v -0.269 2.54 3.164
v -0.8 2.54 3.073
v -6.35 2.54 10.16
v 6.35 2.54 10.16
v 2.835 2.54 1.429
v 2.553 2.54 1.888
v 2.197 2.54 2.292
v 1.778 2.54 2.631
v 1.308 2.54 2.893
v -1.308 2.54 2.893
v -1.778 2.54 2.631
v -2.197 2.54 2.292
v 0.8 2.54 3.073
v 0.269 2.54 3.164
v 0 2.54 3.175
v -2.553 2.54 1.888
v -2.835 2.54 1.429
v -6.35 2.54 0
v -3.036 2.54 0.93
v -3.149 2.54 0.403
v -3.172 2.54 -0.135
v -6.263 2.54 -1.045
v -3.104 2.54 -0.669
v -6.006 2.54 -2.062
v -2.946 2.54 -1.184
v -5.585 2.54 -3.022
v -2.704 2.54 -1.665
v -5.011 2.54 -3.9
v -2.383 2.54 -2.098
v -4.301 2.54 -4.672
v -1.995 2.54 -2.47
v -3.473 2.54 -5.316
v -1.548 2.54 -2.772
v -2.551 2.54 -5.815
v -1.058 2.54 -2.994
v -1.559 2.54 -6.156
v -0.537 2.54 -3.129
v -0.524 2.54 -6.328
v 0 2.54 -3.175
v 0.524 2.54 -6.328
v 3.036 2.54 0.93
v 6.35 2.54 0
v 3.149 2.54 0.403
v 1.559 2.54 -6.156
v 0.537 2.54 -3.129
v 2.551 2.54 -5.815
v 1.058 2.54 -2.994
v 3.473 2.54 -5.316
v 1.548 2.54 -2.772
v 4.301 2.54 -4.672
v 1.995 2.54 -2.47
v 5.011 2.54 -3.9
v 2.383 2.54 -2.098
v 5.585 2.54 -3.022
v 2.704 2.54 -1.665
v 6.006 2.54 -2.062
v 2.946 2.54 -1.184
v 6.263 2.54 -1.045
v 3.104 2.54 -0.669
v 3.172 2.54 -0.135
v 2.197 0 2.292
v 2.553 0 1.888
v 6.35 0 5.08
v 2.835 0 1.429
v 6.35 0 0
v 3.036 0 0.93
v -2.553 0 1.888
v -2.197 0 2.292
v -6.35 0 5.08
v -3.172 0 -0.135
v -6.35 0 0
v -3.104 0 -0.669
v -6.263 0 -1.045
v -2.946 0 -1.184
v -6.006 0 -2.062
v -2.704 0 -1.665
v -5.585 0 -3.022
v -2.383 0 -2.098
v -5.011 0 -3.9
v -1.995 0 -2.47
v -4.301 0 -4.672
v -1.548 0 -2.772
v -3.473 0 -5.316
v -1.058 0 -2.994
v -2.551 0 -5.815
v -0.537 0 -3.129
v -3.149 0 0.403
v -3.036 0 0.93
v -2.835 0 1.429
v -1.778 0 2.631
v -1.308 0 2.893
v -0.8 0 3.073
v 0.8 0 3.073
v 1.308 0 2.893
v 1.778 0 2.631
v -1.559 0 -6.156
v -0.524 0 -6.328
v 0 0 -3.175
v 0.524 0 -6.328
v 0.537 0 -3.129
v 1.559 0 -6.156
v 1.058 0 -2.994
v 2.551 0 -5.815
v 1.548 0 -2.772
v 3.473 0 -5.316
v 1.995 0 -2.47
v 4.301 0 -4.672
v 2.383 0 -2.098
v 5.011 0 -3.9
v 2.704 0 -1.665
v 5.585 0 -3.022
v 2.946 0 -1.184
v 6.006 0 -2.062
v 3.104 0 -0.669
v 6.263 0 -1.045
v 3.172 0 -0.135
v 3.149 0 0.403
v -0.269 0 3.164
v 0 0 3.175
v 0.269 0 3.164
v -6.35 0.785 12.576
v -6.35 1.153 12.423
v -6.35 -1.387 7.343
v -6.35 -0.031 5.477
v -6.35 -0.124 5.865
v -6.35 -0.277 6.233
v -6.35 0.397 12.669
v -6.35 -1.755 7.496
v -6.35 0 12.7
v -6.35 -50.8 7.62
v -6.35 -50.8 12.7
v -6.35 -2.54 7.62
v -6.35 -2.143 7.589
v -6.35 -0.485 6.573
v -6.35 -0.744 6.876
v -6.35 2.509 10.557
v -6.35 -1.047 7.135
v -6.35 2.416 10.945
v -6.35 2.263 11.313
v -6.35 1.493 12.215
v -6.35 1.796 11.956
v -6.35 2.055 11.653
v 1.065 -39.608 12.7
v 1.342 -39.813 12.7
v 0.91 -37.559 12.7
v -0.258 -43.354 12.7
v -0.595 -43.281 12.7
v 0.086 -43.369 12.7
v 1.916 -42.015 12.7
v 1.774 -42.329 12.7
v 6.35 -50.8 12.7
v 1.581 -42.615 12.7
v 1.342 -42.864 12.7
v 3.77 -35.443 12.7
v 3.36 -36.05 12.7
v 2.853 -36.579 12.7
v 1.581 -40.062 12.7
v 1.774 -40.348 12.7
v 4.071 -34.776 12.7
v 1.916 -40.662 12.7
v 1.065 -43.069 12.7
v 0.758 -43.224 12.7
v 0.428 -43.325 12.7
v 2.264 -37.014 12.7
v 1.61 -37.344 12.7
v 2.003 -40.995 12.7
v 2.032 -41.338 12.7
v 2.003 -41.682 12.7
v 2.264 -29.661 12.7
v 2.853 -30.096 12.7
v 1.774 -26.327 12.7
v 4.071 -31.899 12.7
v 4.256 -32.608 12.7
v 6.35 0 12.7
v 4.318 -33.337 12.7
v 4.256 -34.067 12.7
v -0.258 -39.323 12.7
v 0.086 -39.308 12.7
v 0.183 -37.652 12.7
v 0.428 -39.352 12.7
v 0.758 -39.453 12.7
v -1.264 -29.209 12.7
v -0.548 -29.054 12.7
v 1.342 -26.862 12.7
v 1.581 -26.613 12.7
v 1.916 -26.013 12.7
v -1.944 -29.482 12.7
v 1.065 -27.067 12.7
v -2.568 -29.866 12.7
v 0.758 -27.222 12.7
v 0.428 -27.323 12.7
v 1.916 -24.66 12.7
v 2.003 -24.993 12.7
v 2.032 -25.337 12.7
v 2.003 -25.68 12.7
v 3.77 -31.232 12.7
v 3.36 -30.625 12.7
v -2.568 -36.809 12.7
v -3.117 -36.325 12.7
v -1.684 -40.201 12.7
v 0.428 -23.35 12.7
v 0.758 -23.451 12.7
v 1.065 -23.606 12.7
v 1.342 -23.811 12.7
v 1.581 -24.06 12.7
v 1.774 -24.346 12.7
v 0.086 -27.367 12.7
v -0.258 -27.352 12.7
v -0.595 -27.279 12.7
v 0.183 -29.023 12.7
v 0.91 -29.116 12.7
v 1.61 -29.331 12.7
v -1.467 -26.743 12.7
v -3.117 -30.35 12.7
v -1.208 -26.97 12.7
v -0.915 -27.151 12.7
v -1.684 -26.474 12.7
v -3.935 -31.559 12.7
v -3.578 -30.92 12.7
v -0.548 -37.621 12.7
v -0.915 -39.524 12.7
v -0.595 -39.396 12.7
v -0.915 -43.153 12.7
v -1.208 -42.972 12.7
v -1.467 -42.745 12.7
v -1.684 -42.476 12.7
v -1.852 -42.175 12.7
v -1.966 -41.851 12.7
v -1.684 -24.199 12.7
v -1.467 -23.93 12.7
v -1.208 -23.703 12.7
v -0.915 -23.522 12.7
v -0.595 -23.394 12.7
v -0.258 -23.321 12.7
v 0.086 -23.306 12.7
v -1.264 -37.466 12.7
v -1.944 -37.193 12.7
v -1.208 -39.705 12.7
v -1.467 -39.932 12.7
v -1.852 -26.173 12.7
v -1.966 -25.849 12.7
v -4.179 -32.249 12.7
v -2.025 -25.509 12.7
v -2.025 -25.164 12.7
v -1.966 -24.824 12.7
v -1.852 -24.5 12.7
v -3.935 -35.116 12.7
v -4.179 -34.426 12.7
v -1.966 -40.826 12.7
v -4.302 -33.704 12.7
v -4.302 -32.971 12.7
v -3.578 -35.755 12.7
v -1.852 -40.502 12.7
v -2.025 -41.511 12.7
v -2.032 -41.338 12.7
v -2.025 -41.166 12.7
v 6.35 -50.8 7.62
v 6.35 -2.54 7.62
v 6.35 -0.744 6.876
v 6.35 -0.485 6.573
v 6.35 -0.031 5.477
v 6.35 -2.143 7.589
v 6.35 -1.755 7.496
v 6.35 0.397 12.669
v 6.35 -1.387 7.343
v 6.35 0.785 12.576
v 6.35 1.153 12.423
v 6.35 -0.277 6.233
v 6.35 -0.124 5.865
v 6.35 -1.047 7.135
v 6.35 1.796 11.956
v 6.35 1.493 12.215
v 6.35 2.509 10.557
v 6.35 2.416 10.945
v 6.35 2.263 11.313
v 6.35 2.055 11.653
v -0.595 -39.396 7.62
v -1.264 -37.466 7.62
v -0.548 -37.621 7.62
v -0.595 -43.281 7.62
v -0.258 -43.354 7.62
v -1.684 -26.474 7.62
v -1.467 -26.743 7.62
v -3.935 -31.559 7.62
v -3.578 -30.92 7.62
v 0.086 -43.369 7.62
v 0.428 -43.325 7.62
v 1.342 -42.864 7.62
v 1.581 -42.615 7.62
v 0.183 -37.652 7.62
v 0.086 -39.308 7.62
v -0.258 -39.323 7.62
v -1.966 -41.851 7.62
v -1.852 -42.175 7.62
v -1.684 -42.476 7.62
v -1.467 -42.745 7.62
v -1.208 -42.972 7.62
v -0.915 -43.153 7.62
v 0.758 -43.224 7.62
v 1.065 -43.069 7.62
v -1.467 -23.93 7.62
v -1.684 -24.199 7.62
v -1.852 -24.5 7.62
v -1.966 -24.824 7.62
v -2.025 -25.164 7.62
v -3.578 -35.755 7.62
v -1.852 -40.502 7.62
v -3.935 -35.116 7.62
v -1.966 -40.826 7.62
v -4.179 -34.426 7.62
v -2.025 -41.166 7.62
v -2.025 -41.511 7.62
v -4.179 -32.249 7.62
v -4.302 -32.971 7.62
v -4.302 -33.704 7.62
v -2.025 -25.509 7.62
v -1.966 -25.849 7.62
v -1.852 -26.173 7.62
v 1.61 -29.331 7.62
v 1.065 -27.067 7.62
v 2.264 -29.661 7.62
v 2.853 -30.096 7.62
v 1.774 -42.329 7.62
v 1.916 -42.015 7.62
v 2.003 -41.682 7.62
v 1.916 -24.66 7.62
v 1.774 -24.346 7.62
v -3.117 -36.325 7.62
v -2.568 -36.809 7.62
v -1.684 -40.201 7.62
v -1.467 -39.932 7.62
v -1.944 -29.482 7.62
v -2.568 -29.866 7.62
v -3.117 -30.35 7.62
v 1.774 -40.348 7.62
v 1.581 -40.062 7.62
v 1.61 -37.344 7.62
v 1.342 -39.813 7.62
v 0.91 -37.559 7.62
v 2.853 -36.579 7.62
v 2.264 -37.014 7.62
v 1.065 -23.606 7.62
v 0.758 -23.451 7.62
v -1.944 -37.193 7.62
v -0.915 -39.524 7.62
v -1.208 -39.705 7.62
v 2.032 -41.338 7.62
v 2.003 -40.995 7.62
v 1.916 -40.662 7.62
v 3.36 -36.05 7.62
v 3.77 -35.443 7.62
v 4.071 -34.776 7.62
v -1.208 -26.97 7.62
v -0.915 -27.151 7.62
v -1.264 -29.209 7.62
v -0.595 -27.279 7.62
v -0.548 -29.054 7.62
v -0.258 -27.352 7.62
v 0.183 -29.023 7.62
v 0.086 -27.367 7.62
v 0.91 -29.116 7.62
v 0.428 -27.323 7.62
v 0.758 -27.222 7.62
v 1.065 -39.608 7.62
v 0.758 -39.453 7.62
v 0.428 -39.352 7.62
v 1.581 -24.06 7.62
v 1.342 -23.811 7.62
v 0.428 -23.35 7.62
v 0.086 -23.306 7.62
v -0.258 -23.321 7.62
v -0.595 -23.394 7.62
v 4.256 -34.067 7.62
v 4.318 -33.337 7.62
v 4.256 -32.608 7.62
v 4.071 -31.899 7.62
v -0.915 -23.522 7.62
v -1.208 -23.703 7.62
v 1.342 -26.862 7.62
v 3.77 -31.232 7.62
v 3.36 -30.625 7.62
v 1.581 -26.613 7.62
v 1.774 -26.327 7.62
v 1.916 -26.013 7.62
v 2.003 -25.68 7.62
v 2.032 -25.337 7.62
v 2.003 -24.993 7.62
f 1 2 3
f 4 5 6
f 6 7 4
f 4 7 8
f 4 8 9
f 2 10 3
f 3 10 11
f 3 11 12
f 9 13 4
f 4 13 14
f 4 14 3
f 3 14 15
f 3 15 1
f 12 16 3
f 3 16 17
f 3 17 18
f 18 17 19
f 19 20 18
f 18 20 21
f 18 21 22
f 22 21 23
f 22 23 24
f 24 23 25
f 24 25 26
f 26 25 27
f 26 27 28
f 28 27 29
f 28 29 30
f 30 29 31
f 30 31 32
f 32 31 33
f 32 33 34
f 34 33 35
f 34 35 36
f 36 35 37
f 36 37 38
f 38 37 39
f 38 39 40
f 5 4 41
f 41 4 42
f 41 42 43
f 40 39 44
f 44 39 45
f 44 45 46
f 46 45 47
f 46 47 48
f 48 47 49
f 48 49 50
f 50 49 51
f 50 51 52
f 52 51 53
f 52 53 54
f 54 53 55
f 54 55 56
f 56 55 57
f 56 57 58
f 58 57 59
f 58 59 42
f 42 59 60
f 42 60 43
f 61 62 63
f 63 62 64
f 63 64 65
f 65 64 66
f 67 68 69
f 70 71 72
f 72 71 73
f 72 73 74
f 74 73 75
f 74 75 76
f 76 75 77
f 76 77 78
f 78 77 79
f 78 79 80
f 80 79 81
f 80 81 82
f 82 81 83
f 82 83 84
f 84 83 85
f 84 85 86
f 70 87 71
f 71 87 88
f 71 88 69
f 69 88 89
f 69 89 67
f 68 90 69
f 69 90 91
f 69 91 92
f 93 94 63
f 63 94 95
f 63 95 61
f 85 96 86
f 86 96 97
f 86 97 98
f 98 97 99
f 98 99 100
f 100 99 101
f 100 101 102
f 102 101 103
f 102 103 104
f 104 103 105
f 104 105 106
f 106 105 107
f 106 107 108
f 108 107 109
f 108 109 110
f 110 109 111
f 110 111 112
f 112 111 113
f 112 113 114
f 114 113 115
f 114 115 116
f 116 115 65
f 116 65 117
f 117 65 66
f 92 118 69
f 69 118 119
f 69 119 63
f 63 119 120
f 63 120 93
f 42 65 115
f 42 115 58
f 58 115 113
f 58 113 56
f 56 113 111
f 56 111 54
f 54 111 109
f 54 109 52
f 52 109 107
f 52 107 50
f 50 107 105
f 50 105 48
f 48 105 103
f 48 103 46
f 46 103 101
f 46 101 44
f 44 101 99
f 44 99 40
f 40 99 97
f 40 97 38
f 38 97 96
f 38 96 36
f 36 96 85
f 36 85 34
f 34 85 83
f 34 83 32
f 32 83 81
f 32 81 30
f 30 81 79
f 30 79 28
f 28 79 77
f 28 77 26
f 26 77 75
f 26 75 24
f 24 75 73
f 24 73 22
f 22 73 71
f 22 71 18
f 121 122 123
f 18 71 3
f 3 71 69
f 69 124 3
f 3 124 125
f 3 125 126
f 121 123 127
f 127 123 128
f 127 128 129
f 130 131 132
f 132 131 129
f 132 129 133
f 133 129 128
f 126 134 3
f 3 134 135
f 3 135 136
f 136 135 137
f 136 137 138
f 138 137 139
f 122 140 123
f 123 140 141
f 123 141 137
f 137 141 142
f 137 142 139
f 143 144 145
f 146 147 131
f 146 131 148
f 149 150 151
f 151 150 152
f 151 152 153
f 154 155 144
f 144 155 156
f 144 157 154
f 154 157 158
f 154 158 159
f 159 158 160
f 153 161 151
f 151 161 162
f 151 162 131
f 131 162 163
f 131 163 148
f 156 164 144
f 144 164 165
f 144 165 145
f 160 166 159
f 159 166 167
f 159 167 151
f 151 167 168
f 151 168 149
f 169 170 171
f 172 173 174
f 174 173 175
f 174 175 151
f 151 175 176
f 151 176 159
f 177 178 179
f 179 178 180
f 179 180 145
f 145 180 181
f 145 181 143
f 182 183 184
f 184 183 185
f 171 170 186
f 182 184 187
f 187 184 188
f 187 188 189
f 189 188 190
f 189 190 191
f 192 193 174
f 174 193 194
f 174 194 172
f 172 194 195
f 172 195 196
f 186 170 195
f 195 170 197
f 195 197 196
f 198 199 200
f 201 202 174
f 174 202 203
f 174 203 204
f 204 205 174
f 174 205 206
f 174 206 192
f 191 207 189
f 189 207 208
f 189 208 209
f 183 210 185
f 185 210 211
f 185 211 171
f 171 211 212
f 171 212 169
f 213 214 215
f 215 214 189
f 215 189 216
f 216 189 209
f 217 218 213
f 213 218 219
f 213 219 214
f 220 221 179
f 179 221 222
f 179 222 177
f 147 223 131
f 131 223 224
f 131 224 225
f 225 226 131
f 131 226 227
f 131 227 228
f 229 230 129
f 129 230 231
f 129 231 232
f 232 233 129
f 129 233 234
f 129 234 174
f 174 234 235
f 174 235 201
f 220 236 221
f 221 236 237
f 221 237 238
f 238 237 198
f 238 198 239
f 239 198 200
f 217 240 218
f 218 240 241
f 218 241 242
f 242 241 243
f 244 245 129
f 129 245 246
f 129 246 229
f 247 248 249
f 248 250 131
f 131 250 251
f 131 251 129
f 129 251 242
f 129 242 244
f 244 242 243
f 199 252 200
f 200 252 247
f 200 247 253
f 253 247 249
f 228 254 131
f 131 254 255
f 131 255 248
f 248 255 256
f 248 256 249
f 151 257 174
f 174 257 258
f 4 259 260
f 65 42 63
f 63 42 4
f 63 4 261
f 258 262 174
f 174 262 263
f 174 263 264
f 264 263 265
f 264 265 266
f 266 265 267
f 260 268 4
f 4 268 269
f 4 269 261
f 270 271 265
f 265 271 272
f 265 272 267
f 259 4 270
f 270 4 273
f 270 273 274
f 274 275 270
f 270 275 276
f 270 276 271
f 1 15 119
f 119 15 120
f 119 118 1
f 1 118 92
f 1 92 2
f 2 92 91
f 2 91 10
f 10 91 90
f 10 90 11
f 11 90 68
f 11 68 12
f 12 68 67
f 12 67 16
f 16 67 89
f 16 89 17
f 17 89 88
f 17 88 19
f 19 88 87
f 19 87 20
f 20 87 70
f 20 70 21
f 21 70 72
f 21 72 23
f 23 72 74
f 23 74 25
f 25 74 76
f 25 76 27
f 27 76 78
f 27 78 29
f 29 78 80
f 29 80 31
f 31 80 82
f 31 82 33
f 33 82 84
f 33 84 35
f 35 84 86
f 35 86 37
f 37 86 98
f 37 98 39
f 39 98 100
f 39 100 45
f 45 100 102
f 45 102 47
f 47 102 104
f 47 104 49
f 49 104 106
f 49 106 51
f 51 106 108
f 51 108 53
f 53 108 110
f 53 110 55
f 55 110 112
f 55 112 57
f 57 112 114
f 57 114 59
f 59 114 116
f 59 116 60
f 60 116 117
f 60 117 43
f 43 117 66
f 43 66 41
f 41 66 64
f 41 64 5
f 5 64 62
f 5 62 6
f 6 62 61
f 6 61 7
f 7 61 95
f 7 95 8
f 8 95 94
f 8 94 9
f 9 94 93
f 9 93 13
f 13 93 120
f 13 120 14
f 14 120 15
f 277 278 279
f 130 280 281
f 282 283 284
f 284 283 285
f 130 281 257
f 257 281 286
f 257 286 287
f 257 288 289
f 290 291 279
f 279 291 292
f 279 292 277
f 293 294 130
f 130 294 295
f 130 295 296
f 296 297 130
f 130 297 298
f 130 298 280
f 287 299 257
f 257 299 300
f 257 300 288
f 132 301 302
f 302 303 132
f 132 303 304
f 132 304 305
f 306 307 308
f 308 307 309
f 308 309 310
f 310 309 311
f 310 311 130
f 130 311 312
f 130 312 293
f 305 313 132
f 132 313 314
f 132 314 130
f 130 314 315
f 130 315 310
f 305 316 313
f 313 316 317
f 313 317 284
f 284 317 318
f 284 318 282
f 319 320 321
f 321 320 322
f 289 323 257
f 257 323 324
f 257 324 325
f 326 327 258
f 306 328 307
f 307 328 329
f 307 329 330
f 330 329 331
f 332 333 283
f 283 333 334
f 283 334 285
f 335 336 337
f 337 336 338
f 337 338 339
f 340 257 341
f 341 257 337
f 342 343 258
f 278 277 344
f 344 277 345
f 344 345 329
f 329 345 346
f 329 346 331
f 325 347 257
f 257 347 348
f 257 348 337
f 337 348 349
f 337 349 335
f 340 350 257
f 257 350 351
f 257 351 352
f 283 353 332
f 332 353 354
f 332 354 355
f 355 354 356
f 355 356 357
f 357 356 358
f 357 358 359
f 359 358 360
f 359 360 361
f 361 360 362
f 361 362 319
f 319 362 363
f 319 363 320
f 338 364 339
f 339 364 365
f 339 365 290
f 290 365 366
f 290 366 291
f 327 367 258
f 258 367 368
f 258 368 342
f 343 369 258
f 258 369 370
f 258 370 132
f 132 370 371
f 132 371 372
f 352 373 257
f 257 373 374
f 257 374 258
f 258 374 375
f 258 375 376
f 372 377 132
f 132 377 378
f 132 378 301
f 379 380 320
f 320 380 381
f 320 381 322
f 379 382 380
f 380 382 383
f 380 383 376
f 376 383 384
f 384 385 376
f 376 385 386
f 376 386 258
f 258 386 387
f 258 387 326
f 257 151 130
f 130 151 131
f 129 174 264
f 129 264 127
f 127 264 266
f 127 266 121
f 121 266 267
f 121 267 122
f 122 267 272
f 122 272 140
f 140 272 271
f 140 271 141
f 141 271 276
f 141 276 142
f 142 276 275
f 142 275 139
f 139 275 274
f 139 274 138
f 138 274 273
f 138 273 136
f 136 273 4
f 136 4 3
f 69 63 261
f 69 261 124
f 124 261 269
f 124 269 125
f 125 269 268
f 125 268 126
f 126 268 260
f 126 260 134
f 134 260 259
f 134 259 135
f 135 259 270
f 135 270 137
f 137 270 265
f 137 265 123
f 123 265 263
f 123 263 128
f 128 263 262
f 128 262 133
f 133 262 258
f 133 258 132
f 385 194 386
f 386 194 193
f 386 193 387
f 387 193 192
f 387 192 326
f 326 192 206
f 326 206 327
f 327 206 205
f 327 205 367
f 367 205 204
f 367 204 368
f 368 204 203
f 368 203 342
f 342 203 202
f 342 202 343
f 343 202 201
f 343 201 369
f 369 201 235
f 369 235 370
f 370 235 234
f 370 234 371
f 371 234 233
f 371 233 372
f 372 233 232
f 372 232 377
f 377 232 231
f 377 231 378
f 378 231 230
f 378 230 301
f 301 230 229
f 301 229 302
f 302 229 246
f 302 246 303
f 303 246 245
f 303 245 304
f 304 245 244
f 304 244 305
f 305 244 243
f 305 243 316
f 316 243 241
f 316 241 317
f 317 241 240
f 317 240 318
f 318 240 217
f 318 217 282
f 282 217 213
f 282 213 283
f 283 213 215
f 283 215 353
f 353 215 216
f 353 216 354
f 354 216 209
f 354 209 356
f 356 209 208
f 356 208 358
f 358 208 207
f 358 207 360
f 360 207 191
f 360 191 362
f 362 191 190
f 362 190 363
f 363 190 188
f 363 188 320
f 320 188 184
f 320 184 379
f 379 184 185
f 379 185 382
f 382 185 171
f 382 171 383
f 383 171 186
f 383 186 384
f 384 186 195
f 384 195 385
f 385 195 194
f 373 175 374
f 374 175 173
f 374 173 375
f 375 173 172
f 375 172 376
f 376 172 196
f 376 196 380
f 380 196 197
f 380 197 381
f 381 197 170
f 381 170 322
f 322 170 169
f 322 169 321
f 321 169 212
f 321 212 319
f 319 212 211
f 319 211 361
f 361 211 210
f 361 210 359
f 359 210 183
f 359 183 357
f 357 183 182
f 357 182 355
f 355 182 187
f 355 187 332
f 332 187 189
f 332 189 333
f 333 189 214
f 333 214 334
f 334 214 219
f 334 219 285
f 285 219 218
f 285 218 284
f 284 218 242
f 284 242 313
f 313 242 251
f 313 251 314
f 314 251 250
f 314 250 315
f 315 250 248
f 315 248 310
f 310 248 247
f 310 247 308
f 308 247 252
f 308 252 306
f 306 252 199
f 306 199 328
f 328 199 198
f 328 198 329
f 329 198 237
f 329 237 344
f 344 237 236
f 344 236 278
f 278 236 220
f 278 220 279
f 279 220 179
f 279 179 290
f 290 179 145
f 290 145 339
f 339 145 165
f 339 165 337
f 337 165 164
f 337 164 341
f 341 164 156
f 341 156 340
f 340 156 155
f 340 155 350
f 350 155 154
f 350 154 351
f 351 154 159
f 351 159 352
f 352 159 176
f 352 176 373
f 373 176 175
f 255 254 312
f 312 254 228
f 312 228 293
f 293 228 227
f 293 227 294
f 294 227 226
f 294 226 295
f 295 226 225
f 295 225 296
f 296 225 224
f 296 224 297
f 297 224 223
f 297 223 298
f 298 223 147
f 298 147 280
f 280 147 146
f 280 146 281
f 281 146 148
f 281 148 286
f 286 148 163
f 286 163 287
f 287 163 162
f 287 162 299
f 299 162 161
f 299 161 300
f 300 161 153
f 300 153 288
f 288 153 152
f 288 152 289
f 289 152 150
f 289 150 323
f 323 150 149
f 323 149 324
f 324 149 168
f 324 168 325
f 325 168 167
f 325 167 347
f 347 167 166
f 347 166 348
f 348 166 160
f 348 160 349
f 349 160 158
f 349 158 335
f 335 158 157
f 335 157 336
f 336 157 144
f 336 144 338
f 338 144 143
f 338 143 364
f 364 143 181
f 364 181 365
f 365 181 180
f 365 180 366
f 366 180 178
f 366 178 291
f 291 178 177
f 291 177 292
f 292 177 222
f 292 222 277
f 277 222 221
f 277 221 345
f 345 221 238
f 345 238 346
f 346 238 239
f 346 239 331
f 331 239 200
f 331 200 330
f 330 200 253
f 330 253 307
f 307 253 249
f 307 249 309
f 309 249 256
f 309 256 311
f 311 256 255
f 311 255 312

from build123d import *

# Parameters (mm, degrees)
SKETCH2_R           = 3.175
BOSS_EXTRUDE1_DEPTH = 2.54
SKETCH4_W           = 12.7
SKETCH4_H           = 5.08
BOSS_EXTRUDE2_DEPTH = 50.8
FILLET1_R           = 2.54
FILLET2_R           = 2.54
SKETCH5_R           = 4.318
SKETCH5_R_2         = 2.032
CUT_EXTRUDE1_DEPTH  = 55.624765446
CIRPATTERN1_COUNT   = 2


with BuildPart() as part:
    # Sketch2 → Boss-Extrude1 (new body)
    with BuildSketch(Plane(origin=(0, 0, 0), x_dir=(1, 0, 0), z_dir=(0, 1, 0))):
        with BuildLine():
            Line((-6.35, 0), (-6.35, -12.7))
            Line((-6.35, -12.7), (6.35, -12.7))
            Line((6.35, -12.7), (6.35, 0))
            ThreePointArc((6.35, 0), (0, 6.35), (-6.35, 0))
        make_face()
        with Locations(Location((0, 0, 0), (0, 0, 270))):
            Circle(SKETCH2_R, mode=Mode.SUBTRACT)
    extrude(amount=BOSS_EXTRUDE1_DEPTH)

    # Sketch4 → Boss-Extrude2 (add)
    with BuildSketch(Plane.XZ):
        with Locations((0, 10.16)):
            Rectangle(SKETCH4_W, SKETCH4_H)
    extrude(amount=BOSS_EXTRUDE2_DEPTH)

    # Fillet1
    fillet1_edges = [part.edges().sort_by_distance(p)[0] for p in [
        (0, 2.54, 12.7),
    ]]
    fillet(fillet1_edges, radius=FILLET1_R)

    # Fillet2
    fillet2_edges = [part.edges().sort_by_distance(p)[0] for p in [
        (0, 0, 7.62),
    ]]
    fillet(fillet2_edges, radius=FILLET2_R)

    # Sketch5 → Cut-Extrude1 (cut, through all)
    with BuildSketch(Plane.XY.offset(12.7)):
        with Locations((0, -33.3375)):
            Circle(SKETCH5_R)
        with Locations((0, -25.3365)):
            Circle(SKETCH5_R_2)
    cut_extrude1 = extrude(amount=-CUT_EXTRUDE1_DEPTH, mode=Mode.SUBTRACT)

    # CirPattern1: Cut-Extrude1 ×2 about axis
    cirpattern1_axis = Axis((0, -33.3375, 0), (0, 0, 1))
    for i in range(1, CIRPATTERN1_COUNT):
        add(cut_extrude1.rotate(cirpattern1_axis, i * 360 / CIRPATTERN1_COUNT), mode=Mode.SUBTRACT)


solid = part.part
